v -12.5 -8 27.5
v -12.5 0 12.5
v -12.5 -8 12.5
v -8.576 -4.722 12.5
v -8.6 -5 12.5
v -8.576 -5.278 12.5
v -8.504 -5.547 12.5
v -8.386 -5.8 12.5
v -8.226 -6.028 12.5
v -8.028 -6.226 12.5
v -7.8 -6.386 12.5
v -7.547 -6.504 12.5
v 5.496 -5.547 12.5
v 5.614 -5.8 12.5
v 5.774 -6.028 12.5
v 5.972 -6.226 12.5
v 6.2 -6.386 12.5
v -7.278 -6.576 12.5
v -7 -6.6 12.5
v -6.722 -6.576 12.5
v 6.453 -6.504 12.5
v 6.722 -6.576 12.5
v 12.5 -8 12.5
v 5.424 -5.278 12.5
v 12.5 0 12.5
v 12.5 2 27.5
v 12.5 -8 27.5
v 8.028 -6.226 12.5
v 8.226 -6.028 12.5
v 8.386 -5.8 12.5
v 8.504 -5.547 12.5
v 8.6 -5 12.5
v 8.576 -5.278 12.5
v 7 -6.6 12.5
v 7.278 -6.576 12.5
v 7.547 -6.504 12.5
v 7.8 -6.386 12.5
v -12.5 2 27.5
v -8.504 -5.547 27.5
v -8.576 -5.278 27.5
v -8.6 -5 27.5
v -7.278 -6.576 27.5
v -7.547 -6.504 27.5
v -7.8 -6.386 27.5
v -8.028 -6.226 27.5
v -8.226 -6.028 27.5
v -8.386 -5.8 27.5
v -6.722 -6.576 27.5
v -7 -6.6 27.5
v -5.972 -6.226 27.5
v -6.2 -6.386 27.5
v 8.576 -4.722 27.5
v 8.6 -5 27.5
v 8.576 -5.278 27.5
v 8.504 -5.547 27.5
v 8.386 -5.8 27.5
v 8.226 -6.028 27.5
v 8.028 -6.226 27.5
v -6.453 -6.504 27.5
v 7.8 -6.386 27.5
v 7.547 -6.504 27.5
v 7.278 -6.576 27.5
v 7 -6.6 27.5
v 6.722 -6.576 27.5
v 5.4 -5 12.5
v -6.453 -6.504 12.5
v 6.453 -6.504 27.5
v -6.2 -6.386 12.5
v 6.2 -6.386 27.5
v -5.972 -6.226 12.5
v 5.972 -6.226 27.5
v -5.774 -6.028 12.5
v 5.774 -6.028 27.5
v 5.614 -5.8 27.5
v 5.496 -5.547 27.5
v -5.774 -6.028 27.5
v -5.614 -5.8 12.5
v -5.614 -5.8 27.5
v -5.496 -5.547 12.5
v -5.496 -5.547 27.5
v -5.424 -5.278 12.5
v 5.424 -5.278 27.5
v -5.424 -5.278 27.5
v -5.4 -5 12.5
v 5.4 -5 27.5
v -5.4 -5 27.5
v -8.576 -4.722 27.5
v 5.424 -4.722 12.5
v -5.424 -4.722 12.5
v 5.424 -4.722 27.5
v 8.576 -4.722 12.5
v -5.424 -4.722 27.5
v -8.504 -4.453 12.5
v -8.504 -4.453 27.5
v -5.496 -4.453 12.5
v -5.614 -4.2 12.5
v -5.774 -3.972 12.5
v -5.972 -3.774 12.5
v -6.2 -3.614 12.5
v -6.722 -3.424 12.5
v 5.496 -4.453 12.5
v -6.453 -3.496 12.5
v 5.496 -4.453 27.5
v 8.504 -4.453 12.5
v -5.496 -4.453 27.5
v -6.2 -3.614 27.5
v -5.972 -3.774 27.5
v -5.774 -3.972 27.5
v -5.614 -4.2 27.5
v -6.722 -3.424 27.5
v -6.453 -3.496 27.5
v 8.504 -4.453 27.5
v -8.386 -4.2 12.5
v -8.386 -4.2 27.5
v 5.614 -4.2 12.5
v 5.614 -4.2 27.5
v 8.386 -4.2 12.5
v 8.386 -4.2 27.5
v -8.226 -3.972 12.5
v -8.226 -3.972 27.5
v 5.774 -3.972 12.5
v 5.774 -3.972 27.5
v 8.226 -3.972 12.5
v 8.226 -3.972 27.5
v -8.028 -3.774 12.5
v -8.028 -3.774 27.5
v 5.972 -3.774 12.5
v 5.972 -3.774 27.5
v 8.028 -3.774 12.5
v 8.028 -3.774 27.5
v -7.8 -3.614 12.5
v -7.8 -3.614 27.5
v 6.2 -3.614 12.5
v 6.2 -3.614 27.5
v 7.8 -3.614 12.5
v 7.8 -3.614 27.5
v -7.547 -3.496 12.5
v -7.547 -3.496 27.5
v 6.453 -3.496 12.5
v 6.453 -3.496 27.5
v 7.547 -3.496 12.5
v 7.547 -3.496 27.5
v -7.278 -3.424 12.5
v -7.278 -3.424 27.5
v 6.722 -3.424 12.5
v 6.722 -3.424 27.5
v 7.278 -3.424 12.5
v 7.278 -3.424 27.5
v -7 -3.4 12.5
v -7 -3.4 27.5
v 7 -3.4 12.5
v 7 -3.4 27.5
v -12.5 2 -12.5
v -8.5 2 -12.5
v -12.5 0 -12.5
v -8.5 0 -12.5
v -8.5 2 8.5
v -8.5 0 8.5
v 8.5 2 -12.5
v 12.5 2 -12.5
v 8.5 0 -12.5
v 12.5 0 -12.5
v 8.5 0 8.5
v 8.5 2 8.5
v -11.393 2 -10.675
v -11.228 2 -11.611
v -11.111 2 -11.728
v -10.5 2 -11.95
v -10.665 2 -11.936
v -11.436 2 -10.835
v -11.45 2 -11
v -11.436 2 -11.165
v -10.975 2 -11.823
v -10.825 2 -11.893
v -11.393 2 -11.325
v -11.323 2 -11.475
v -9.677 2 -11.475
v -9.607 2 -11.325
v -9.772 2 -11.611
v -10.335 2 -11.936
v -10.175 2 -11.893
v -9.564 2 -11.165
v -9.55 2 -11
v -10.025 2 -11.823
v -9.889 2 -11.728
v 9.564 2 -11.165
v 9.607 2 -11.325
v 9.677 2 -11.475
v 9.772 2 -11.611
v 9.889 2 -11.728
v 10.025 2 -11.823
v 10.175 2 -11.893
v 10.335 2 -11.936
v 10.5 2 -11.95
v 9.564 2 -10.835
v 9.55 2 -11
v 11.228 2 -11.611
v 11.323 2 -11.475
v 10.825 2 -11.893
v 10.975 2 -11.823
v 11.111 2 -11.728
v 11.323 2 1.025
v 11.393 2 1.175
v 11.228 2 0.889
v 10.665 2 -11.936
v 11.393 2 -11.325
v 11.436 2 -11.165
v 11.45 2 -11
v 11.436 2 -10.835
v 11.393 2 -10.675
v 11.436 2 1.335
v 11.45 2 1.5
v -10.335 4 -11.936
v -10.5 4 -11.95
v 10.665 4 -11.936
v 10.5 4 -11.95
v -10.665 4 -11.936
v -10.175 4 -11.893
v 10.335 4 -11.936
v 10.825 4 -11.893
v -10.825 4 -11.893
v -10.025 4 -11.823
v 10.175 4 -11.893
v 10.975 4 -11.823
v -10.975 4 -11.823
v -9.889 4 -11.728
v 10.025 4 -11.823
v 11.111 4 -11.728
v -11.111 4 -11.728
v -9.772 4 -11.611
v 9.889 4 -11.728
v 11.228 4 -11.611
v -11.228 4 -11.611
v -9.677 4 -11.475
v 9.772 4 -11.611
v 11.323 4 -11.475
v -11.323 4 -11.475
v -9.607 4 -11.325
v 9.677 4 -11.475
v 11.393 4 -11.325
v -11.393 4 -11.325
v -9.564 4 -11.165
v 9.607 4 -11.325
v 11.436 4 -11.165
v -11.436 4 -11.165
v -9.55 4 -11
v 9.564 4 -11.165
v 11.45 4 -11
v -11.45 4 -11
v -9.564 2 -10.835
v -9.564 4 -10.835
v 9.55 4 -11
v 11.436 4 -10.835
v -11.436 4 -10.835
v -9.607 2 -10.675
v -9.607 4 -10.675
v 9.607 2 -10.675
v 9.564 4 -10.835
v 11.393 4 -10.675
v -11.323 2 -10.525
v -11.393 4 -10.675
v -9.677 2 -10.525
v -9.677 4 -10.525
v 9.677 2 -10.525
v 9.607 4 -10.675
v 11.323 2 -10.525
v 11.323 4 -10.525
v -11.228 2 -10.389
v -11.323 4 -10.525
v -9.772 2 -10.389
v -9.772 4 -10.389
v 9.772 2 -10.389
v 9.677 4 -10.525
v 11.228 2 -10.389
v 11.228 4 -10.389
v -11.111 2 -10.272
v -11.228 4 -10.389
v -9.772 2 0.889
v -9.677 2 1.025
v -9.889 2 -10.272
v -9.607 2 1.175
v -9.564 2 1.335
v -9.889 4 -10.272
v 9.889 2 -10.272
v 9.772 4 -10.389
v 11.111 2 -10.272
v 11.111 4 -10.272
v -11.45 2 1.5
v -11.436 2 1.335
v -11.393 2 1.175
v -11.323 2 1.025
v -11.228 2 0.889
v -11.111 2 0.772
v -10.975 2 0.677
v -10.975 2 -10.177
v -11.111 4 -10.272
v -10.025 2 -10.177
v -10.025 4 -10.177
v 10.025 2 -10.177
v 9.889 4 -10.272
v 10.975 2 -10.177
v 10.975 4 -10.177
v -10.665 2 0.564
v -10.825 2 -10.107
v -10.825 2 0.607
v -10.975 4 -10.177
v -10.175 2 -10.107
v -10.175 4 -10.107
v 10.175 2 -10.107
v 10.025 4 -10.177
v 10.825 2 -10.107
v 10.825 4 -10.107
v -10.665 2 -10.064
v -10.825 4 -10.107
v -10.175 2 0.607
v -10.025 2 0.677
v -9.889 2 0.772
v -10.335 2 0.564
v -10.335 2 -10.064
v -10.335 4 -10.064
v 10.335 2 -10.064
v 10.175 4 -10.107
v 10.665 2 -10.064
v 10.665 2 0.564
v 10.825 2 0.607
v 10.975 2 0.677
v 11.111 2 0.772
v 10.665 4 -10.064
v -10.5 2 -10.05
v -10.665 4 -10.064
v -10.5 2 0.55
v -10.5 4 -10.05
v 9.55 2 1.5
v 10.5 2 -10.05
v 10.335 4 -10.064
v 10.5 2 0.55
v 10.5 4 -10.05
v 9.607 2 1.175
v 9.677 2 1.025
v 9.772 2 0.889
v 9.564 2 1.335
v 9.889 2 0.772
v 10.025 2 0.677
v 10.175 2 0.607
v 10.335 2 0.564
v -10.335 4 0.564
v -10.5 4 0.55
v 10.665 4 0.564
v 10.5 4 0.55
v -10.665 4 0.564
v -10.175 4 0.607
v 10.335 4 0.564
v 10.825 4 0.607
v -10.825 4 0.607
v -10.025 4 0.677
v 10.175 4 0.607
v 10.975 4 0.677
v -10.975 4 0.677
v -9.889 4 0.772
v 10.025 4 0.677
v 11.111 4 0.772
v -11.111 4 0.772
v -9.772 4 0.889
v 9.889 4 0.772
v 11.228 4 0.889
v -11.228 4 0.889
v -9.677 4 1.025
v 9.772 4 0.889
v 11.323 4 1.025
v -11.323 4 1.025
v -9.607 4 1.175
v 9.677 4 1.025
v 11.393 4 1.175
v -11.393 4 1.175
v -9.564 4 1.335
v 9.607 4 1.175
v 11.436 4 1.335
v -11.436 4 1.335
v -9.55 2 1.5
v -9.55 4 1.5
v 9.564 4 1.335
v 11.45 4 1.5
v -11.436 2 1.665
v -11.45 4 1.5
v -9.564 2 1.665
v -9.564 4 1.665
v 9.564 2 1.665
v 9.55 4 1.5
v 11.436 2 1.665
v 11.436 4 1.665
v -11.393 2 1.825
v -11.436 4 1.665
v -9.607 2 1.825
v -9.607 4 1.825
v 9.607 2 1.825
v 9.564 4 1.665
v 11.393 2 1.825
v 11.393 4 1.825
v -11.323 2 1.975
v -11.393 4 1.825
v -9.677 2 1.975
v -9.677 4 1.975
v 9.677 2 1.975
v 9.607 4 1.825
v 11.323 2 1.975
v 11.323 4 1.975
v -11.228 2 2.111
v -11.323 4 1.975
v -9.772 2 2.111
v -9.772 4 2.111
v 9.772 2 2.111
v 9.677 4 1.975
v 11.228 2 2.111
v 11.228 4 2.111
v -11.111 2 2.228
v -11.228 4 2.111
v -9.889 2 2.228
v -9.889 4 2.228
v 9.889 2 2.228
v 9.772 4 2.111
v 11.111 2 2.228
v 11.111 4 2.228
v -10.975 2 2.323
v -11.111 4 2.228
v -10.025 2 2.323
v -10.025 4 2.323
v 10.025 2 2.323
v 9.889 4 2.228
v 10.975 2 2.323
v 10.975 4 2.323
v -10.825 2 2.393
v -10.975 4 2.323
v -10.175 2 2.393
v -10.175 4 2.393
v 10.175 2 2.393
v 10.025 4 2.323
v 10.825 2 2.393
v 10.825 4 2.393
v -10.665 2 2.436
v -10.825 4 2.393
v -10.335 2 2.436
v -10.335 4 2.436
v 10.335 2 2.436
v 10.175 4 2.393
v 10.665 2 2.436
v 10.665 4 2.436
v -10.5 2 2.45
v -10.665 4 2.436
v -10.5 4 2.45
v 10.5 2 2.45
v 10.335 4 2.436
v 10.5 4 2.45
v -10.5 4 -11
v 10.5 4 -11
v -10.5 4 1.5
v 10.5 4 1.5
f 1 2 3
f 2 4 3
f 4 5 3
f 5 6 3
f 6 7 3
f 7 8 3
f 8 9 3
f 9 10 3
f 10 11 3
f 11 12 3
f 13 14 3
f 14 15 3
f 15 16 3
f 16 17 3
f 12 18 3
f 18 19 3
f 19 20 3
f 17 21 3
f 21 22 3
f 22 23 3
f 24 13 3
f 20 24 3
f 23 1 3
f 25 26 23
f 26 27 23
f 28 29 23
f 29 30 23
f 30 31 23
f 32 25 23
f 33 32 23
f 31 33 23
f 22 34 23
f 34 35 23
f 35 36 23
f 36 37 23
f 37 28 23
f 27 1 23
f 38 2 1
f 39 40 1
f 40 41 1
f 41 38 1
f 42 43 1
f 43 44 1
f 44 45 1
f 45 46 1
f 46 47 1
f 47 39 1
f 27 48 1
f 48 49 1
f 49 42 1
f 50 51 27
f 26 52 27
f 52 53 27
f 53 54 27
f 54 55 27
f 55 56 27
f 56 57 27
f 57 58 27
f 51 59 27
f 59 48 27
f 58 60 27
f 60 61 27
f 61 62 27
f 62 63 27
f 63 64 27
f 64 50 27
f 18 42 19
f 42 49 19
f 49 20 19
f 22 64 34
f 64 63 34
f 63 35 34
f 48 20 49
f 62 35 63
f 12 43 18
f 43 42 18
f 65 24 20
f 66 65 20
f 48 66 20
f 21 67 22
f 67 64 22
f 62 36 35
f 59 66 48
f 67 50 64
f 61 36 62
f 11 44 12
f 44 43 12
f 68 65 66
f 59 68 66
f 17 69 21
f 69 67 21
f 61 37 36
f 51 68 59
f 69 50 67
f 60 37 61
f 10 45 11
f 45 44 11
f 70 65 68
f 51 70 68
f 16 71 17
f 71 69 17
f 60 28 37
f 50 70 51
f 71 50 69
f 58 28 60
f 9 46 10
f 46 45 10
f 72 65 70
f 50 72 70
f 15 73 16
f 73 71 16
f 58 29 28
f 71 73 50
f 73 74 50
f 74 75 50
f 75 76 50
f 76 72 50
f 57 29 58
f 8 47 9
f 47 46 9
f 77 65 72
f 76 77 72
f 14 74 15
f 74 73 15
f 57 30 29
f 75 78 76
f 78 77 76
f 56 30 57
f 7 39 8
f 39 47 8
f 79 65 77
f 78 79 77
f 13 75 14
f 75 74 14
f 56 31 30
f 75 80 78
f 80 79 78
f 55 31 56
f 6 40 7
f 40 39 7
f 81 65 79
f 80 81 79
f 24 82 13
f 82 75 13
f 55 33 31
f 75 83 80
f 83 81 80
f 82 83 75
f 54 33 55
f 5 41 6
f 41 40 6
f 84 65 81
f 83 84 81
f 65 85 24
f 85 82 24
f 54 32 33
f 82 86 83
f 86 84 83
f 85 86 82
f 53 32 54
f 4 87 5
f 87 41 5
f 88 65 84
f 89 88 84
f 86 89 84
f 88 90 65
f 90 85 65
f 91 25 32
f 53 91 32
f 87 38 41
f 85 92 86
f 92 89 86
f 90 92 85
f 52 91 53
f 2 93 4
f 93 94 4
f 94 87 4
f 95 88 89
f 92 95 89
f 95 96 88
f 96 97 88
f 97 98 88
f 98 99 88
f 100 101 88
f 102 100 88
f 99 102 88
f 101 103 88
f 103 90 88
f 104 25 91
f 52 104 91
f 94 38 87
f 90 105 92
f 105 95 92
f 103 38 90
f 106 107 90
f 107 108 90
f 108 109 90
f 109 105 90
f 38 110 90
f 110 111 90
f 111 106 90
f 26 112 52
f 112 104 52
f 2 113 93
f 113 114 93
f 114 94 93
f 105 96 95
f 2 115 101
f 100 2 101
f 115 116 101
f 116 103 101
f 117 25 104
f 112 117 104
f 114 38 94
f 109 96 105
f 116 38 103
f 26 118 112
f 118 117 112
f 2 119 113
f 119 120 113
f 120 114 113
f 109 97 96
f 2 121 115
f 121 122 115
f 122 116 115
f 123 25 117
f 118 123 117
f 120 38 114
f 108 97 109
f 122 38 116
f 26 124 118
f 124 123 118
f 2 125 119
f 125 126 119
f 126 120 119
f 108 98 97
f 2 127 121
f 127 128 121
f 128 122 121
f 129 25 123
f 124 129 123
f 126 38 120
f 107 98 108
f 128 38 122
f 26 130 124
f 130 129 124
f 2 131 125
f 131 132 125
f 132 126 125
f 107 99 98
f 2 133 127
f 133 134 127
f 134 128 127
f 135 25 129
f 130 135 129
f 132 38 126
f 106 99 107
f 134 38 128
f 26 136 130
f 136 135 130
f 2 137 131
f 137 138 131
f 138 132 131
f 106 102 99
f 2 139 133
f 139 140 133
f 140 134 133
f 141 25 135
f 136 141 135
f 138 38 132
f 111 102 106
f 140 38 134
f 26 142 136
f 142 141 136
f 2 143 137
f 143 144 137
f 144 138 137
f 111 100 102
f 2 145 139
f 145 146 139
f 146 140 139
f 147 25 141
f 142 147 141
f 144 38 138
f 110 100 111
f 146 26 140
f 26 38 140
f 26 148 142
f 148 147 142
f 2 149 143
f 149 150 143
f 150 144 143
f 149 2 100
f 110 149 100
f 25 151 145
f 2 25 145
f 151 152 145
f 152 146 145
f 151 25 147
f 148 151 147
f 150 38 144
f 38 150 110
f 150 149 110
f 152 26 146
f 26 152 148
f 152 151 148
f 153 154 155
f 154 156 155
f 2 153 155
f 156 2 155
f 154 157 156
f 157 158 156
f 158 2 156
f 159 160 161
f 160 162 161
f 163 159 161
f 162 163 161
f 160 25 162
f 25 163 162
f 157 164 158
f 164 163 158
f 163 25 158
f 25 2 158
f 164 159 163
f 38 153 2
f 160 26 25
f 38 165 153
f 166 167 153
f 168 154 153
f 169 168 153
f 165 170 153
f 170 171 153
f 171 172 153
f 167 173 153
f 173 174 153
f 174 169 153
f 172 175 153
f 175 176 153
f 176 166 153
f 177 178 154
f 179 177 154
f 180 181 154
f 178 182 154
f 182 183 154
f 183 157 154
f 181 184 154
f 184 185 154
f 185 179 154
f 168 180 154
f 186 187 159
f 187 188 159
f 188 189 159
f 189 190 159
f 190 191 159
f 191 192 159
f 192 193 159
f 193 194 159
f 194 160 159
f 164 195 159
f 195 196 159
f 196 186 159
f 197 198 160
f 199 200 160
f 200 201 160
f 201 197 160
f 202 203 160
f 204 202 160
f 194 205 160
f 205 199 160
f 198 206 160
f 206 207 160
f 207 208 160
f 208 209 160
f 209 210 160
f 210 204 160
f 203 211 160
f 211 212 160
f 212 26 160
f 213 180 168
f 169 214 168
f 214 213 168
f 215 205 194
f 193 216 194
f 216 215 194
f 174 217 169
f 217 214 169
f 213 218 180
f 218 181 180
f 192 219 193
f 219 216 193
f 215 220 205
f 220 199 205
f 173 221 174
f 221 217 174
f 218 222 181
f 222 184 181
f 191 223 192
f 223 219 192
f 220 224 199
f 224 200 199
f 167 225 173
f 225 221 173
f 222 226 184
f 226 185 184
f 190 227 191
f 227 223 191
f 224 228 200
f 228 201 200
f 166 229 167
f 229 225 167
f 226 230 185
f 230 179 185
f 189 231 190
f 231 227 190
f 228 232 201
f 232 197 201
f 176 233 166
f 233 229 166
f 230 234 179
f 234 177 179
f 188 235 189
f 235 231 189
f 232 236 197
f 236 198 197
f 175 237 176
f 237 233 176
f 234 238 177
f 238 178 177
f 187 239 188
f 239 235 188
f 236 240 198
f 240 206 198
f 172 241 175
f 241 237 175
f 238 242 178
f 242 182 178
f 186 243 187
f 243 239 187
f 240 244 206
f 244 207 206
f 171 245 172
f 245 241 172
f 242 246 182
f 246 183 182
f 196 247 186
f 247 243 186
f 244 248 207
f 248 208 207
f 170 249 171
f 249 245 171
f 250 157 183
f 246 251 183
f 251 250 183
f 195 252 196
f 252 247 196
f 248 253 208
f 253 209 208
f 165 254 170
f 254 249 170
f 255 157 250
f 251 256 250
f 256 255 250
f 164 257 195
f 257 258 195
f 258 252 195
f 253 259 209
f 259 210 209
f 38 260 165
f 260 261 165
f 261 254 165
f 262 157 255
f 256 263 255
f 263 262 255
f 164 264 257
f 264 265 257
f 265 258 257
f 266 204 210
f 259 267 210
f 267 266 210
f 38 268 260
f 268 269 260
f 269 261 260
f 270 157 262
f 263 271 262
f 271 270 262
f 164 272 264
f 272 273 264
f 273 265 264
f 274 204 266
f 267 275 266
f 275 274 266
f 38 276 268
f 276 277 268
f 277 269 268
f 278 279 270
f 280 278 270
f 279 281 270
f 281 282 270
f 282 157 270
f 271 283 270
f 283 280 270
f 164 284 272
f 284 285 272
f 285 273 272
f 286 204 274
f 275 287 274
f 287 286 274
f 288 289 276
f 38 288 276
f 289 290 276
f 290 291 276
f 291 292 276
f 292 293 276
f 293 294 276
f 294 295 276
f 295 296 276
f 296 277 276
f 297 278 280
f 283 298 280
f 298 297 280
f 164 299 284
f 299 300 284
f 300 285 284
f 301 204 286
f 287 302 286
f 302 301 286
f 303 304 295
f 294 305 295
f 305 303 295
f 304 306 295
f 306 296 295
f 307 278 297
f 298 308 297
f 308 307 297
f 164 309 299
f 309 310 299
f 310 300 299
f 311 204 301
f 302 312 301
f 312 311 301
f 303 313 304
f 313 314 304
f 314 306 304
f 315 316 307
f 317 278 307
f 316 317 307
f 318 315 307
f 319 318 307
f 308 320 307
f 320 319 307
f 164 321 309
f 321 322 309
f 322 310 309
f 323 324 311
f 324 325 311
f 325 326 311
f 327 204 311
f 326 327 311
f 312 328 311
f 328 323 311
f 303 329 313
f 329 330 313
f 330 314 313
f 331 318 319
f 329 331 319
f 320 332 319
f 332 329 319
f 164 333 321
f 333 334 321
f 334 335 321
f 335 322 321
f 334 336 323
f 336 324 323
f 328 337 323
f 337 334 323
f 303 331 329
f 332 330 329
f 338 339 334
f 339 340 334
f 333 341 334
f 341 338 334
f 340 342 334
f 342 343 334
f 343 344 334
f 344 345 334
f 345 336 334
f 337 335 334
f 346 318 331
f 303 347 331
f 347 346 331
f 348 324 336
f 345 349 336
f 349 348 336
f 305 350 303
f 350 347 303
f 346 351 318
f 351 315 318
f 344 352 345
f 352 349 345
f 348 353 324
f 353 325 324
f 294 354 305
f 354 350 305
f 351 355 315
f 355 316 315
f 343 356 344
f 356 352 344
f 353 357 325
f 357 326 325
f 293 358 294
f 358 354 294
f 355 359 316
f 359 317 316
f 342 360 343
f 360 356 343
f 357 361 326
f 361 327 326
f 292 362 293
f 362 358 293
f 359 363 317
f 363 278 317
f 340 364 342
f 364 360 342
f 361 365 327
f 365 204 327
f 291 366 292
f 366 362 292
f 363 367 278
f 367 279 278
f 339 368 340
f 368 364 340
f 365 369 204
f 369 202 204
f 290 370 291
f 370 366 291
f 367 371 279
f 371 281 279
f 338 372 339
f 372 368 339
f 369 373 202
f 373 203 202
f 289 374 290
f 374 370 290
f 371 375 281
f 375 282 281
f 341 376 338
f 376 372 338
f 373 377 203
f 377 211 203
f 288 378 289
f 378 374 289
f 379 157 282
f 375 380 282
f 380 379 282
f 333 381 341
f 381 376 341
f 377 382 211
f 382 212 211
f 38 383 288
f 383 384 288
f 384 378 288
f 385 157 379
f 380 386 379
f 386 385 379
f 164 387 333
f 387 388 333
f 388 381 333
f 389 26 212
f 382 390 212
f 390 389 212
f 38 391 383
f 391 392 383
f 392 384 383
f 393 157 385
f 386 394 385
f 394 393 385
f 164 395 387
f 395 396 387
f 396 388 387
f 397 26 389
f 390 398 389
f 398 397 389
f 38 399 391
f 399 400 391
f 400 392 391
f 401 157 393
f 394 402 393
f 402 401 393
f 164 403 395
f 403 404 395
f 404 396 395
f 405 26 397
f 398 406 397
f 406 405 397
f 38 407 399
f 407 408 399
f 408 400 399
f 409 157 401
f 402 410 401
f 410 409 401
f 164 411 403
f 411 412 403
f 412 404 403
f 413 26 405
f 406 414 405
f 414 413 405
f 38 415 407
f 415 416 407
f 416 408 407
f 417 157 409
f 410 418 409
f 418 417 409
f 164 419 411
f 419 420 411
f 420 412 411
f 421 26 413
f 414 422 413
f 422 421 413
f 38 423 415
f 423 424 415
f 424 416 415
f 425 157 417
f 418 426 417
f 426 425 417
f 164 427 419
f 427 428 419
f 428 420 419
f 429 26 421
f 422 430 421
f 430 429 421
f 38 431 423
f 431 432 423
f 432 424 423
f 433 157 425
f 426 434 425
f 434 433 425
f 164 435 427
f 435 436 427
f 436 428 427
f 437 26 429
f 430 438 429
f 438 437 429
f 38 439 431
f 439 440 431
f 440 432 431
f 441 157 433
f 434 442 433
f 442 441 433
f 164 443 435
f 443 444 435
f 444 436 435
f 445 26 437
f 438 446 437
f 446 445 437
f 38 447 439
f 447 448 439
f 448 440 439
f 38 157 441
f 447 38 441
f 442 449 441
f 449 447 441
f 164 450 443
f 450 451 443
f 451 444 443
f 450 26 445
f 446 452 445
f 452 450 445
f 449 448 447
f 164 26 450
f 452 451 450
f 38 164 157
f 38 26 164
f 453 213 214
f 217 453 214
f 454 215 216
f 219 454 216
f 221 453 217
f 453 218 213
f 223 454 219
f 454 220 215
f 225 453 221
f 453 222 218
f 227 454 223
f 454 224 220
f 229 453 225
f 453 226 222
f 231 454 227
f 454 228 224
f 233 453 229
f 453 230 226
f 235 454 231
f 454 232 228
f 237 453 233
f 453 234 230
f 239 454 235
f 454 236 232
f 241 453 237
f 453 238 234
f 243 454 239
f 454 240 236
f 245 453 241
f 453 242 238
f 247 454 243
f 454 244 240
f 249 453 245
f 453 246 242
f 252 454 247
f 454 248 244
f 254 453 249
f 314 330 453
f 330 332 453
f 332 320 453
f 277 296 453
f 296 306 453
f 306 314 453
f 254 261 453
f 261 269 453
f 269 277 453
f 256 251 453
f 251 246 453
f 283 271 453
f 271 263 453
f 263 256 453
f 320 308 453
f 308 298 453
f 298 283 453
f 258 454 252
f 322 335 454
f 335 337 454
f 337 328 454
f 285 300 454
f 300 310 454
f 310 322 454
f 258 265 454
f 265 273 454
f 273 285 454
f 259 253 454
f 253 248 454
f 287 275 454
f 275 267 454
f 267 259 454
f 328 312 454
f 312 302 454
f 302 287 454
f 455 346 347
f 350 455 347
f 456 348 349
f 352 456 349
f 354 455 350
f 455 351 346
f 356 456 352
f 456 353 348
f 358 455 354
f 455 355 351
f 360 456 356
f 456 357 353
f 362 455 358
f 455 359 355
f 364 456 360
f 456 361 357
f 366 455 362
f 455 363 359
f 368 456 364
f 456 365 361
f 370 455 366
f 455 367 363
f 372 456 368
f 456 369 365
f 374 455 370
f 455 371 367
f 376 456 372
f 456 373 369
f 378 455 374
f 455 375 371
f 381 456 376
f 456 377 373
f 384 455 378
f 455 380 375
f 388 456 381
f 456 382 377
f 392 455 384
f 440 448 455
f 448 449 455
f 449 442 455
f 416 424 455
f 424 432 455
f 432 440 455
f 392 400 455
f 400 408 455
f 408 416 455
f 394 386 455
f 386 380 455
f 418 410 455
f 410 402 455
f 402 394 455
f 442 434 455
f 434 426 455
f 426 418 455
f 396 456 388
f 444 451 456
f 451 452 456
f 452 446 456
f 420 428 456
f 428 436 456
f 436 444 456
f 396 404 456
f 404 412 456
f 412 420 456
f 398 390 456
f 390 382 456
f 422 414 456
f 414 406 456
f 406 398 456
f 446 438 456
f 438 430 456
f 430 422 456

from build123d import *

# Parameters (mm, degrees)
BOSS_EXTRUDE1_DEPTH = 2
SKETCH2_R           = 0.95
BOSS_EXTRUDE2_DEPTH = 2
SKETCH3_W           = 25
SKETCH3_H           = 10
BOSS_EXTRUDE3_DEPTH = 15
SKETCH4_R           = 1.6
CUT_EXTRUDE1_DEPTH  = 20


with BuildPart() as part:
    # Sketch1 → Boss-Extrude1 (new body)
    with BuildSketch(Plane(origin=(0, 0, 0), x_dir=(1, 0, 0), z_dir=(0, 1, 0))):
        Polygon((-8.5, 12.5), (-8.5, -8.5), (8.5, -8.5), (8.5, 12.5), (12.5, 12.5), (12.5, -12.5), (-12.5, -12.5), (-12.5, 12.5), align=None)
    extrude(amount=BOSS_EXTRUDE1_DEPTH)

    # Sketch2 → Boss-Extrude2 (add)
    with BuildSketch(Plane(origin=(0, 2, 0), x_dir=(1, 0, 0), z_dir=(0, 1, 0))):
        with Locations((-10.5, 11)):
            Circle(SKETCH2_R)
        with Locations((-10.5, -1.5)):
            Circle(SKETCH2_R)
        with Locations((10.5, 11)):
            Circle(SKETCH2_R)
        with Locations((10.5, -1.5)):
            Circle(SKETCH2_R)
    extrude(amount=BOSS_EXTRUDE2_DEPTH)

    # Sketch3 → Boss-Extrude3 (add)
    with BuildSketch(Plane.XY.offset(12.5)):
        with Locations((0, -3)):
            Rectangle(SKETCH3_W, SKETCH3_H)
    extrude(amount=BOSS_EXTRUDE3_DEPTH)

    # Sketch4 → Cut-Extrude1 (cut)
    with BuildSketch(Plane.XY.offset(27.5)):
        with Locations((-7, -5)):
            Circle(SKETCH4_R)
        with Locations((7, -5)):
            Circle(SKETCH4_R)
    extrude(amount=-CUT_EXTRUDE1_DEPTH, mode=Mode.SUBTRACT)


solid = part.part
